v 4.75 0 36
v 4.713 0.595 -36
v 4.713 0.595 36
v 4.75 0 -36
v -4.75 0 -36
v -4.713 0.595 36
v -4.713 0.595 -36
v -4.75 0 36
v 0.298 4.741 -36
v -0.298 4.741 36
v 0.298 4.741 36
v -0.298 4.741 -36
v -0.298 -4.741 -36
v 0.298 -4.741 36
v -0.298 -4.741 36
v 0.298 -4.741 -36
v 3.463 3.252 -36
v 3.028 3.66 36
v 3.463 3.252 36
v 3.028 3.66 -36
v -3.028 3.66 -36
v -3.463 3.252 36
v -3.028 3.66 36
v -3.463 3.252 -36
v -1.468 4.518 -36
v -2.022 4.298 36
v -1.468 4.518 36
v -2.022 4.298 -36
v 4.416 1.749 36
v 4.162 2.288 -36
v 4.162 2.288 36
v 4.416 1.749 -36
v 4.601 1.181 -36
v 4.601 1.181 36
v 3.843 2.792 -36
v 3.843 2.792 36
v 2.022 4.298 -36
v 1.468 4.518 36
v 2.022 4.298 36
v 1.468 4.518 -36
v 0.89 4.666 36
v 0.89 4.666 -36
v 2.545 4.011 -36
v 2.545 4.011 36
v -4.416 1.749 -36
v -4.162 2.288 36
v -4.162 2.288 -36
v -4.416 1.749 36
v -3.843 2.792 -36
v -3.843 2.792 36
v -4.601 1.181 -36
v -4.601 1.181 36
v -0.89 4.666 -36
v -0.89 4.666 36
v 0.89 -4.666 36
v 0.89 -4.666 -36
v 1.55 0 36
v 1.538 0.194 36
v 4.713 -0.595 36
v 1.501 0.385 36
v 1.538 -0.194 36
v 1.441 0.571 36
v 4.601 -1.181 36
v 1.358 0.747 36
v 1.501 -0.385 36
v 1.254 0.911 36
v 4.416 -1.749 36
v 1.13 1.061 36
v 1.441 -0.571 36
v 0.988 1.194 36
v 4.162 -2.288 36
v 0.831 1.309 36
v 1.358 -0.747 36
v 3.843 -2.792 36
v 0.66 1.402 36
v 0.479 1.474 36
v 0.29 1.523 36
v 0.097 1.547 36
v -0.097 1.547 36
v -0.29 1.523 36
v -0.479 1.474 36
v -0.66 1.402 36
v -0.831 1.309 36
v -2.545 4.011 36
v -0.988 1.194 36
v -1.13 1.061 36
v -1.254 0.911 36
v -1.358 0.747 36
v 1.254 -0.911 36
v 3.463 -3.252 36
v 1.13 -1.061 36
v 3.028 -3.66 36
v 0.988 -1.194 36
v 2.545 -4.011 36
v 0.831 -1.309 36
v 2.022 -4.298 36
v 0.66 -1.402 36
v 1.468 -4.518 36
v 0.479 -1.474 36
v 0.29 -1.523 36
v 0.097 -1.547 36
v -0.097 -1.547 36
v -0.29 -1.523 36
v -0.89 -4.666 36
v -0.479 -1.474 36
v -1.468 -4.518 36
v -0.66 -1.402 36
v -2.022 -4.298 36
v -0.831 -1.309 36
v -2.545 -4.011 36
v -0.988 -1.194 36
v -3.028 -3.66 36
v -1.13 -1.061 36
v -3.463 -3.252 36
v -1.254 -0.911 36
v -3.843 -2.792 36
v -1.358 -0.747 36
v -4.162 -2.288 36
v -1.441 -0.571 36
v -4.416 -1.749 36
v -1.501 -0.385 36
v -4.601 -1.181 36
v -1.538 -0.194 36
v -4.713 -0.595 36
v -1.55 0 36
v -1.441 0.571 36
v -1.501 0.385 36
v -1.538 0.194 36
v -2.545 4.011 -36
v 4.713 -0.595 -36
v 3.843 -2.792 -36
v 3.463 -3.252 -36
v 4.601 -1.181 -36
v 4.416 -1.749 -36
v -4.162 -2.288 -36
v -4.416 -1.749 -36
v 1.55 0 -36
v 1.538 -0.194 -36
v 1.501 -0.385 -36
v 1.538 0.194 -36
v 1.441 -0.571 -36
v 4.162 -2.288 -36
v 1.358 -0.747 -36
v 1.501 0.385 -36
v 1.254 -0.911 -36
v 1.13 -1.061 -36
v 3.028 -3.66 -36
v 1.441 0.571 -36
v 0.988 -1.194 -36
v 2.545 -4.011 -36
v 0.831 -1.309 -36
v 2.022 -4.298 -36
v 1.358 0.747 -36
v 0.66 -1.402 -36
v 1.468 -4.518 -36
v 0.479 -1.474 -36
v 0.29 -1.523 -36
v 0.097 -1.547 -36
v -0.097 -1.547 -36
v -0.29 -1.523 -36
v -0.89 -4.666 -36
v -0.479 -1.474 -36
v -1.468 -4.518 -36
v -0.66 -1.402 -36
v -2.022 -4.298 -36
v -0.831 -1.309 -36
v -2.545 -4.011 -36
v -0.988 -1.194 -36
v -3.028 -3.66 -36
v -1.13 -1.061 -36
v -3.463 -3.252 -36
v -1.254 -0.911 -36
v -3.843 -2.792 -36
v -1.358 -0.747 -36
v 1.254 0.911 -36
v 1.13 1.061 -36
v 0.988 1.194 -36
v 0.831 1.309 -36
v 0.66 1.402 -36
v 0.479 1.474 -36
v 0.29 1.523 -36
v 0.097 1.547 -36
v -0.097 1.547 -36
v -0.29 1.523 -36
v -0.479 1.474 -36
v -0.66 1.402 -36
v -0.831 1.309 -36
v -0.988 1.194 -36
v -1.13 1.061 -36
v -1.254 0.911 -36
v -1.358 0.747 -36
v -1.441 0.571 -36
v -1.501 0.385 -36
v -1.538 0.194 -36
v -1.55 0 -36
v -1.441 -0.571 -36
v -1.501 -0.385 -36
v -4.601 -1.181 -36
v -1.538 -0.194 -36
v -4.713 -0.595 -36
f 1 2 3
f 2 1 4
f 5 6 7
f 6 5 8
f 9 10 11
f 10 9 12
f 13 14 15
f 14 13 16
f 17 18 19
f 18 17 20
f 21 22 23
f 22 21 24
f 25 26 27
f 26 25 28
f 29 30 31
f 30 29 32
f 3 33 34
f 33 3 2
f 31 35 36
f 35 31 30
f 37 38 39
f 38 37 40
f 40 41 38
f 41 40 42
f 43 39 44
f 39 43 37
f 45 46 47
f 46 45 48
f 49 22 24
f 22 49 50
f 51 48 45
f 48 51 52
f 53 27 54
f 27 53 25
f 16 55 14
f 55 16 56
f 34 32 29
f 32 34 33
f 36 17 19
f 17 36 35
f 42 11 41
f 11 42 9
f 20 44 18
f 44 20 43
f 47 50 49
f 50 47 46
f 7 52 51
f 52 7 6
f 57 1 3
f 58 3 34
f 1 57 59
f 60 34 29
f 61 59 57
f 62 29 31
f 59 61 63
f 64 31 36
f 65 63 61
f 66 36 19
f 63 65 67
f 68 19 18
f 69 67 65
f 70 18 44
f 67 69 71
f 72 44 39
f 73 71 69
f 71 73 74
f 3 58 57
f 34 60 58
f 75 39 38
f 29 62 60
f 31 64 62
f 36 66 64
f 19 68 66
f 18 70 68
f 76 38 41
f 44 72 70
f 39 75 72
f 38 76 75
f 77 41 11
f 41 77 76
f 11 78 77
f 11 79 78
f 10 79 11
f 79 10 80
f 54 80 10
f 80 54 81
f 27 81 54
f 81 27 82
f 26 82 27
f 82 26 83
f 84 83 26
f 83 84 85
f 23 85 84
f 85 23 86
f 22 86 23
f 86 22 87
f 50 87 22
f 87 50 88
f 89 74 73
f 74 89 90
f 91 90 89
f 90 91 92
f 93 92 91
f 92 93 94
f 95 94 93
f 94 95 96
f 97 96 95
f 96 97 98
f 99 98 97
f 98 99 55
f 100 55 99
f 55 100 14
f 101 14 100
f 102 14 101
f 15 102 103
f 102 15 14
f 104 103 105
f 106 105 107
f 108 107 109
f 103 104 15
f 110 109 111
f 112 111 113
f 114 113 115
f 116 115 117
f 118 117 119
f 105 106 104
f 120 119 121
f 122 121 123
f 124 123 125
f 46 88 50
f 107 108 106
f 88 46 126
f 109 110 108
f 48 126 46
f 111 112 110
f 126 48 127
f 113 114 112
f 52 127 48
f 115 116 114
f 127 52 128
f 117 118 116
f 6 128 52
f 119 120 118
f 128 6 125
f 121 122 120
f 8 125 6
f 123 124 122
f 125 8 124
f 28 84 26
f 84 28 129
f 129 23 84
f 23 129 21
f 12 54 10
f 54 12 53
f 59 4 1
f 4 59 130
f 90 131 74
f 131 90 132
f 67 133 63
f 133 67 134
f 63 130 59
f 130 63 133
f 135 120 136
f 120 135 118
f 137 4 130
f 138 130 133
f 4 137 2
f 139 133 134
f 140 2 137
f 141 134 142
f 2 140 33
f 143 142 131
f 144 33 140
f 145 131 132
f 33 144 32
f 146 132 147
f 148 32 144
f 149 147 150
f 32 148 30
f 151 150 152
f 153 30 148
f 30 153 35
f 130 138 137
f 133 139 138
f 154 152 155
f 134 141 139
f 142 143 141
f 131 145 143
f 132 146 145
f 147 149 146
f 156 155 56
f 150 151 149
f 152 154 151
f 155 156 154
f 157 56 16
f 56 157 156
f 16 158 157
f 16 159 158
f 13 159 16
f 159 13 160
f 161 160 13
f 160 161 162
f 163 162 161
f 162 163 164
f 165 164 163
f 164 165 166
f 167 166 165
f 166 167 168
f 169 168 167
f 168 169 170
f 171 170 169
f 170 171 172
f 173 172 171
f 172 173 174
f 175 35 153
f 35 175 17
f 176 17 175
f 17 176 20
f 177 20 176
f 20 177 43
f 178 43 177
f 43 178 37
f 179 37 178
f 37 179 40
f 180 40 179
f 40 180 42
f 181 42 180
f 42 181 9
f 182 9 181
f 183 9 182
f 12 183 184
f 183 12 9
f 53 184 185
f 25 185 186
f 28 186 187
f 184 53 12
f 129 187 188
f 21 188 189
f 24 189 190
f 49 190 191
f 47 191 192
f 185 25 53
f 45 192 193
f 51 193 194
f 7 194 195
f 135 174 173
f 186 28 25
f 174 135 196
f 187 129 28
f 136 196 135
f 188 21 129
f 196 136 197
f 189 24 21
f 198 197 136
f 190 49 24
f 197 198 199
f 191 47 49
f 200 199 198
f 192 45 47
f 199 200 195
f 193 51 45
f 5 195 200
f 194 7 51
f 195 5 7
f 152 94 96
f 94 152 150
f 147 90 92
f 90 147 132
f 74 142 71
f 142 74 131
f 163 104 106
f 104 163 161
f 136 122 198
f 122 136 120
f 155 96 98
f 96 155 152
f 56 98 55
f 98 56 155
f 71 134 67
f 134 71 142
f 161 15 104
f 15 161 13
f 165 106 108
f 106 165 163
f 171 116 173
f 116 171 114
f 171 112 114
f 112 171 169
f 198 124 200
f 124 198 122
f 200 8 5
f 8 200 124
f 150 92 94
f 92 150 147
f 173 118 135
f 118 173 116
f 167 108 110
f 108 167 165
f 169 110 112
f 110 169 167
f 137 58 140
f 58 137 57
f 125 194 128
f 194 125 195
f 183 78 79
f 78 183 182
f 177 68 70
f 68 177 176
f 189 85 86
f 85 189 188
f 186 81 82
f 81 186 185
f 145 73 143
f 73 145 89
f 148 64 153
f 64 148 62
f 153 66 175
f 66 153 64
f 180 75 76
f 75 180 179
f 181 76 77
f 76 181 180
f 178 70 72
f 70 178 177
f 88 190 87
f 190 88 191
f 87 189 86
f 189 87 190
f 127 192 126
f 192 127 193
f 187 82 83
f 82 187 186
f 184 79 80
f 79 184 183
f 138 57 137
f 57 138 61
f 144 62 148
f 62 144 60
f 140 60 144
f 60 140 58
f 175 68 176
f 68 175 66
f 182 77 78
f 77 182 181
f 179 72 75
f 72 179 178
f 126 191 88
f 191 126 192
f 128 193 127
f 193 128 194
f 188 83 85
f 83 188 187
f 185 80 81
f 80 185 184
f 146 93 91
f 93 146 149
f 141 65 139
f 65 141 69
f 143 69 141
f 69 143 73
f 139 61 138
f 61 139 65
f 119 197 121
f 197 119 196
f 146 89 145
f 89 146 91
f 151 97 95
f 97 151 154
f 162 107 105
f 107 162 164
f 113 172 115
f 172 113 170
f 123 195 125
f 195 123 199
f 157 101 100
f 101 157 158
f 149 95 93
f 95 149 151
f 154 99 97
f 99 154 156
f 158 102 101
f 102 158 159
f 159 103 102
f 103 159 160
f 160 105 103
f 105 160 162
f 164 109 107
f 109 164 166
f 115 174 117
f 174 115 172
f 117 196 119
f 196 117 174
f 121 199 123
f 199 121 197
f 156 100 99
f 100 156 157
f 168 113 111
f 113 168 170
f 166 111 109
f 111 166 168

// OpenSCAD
$fn = 50;


difference() {
	union() {
		translate(v = [0, 0, -36.0000000000]) {
			cylinder(h = 72, r = 4.7500000000);
		}
	}
	union() {
		translate(v = [0, 0, -100.0000000000]) {
			cylinder(h = 200, r = 1.5500000000);
		}
	}
}
